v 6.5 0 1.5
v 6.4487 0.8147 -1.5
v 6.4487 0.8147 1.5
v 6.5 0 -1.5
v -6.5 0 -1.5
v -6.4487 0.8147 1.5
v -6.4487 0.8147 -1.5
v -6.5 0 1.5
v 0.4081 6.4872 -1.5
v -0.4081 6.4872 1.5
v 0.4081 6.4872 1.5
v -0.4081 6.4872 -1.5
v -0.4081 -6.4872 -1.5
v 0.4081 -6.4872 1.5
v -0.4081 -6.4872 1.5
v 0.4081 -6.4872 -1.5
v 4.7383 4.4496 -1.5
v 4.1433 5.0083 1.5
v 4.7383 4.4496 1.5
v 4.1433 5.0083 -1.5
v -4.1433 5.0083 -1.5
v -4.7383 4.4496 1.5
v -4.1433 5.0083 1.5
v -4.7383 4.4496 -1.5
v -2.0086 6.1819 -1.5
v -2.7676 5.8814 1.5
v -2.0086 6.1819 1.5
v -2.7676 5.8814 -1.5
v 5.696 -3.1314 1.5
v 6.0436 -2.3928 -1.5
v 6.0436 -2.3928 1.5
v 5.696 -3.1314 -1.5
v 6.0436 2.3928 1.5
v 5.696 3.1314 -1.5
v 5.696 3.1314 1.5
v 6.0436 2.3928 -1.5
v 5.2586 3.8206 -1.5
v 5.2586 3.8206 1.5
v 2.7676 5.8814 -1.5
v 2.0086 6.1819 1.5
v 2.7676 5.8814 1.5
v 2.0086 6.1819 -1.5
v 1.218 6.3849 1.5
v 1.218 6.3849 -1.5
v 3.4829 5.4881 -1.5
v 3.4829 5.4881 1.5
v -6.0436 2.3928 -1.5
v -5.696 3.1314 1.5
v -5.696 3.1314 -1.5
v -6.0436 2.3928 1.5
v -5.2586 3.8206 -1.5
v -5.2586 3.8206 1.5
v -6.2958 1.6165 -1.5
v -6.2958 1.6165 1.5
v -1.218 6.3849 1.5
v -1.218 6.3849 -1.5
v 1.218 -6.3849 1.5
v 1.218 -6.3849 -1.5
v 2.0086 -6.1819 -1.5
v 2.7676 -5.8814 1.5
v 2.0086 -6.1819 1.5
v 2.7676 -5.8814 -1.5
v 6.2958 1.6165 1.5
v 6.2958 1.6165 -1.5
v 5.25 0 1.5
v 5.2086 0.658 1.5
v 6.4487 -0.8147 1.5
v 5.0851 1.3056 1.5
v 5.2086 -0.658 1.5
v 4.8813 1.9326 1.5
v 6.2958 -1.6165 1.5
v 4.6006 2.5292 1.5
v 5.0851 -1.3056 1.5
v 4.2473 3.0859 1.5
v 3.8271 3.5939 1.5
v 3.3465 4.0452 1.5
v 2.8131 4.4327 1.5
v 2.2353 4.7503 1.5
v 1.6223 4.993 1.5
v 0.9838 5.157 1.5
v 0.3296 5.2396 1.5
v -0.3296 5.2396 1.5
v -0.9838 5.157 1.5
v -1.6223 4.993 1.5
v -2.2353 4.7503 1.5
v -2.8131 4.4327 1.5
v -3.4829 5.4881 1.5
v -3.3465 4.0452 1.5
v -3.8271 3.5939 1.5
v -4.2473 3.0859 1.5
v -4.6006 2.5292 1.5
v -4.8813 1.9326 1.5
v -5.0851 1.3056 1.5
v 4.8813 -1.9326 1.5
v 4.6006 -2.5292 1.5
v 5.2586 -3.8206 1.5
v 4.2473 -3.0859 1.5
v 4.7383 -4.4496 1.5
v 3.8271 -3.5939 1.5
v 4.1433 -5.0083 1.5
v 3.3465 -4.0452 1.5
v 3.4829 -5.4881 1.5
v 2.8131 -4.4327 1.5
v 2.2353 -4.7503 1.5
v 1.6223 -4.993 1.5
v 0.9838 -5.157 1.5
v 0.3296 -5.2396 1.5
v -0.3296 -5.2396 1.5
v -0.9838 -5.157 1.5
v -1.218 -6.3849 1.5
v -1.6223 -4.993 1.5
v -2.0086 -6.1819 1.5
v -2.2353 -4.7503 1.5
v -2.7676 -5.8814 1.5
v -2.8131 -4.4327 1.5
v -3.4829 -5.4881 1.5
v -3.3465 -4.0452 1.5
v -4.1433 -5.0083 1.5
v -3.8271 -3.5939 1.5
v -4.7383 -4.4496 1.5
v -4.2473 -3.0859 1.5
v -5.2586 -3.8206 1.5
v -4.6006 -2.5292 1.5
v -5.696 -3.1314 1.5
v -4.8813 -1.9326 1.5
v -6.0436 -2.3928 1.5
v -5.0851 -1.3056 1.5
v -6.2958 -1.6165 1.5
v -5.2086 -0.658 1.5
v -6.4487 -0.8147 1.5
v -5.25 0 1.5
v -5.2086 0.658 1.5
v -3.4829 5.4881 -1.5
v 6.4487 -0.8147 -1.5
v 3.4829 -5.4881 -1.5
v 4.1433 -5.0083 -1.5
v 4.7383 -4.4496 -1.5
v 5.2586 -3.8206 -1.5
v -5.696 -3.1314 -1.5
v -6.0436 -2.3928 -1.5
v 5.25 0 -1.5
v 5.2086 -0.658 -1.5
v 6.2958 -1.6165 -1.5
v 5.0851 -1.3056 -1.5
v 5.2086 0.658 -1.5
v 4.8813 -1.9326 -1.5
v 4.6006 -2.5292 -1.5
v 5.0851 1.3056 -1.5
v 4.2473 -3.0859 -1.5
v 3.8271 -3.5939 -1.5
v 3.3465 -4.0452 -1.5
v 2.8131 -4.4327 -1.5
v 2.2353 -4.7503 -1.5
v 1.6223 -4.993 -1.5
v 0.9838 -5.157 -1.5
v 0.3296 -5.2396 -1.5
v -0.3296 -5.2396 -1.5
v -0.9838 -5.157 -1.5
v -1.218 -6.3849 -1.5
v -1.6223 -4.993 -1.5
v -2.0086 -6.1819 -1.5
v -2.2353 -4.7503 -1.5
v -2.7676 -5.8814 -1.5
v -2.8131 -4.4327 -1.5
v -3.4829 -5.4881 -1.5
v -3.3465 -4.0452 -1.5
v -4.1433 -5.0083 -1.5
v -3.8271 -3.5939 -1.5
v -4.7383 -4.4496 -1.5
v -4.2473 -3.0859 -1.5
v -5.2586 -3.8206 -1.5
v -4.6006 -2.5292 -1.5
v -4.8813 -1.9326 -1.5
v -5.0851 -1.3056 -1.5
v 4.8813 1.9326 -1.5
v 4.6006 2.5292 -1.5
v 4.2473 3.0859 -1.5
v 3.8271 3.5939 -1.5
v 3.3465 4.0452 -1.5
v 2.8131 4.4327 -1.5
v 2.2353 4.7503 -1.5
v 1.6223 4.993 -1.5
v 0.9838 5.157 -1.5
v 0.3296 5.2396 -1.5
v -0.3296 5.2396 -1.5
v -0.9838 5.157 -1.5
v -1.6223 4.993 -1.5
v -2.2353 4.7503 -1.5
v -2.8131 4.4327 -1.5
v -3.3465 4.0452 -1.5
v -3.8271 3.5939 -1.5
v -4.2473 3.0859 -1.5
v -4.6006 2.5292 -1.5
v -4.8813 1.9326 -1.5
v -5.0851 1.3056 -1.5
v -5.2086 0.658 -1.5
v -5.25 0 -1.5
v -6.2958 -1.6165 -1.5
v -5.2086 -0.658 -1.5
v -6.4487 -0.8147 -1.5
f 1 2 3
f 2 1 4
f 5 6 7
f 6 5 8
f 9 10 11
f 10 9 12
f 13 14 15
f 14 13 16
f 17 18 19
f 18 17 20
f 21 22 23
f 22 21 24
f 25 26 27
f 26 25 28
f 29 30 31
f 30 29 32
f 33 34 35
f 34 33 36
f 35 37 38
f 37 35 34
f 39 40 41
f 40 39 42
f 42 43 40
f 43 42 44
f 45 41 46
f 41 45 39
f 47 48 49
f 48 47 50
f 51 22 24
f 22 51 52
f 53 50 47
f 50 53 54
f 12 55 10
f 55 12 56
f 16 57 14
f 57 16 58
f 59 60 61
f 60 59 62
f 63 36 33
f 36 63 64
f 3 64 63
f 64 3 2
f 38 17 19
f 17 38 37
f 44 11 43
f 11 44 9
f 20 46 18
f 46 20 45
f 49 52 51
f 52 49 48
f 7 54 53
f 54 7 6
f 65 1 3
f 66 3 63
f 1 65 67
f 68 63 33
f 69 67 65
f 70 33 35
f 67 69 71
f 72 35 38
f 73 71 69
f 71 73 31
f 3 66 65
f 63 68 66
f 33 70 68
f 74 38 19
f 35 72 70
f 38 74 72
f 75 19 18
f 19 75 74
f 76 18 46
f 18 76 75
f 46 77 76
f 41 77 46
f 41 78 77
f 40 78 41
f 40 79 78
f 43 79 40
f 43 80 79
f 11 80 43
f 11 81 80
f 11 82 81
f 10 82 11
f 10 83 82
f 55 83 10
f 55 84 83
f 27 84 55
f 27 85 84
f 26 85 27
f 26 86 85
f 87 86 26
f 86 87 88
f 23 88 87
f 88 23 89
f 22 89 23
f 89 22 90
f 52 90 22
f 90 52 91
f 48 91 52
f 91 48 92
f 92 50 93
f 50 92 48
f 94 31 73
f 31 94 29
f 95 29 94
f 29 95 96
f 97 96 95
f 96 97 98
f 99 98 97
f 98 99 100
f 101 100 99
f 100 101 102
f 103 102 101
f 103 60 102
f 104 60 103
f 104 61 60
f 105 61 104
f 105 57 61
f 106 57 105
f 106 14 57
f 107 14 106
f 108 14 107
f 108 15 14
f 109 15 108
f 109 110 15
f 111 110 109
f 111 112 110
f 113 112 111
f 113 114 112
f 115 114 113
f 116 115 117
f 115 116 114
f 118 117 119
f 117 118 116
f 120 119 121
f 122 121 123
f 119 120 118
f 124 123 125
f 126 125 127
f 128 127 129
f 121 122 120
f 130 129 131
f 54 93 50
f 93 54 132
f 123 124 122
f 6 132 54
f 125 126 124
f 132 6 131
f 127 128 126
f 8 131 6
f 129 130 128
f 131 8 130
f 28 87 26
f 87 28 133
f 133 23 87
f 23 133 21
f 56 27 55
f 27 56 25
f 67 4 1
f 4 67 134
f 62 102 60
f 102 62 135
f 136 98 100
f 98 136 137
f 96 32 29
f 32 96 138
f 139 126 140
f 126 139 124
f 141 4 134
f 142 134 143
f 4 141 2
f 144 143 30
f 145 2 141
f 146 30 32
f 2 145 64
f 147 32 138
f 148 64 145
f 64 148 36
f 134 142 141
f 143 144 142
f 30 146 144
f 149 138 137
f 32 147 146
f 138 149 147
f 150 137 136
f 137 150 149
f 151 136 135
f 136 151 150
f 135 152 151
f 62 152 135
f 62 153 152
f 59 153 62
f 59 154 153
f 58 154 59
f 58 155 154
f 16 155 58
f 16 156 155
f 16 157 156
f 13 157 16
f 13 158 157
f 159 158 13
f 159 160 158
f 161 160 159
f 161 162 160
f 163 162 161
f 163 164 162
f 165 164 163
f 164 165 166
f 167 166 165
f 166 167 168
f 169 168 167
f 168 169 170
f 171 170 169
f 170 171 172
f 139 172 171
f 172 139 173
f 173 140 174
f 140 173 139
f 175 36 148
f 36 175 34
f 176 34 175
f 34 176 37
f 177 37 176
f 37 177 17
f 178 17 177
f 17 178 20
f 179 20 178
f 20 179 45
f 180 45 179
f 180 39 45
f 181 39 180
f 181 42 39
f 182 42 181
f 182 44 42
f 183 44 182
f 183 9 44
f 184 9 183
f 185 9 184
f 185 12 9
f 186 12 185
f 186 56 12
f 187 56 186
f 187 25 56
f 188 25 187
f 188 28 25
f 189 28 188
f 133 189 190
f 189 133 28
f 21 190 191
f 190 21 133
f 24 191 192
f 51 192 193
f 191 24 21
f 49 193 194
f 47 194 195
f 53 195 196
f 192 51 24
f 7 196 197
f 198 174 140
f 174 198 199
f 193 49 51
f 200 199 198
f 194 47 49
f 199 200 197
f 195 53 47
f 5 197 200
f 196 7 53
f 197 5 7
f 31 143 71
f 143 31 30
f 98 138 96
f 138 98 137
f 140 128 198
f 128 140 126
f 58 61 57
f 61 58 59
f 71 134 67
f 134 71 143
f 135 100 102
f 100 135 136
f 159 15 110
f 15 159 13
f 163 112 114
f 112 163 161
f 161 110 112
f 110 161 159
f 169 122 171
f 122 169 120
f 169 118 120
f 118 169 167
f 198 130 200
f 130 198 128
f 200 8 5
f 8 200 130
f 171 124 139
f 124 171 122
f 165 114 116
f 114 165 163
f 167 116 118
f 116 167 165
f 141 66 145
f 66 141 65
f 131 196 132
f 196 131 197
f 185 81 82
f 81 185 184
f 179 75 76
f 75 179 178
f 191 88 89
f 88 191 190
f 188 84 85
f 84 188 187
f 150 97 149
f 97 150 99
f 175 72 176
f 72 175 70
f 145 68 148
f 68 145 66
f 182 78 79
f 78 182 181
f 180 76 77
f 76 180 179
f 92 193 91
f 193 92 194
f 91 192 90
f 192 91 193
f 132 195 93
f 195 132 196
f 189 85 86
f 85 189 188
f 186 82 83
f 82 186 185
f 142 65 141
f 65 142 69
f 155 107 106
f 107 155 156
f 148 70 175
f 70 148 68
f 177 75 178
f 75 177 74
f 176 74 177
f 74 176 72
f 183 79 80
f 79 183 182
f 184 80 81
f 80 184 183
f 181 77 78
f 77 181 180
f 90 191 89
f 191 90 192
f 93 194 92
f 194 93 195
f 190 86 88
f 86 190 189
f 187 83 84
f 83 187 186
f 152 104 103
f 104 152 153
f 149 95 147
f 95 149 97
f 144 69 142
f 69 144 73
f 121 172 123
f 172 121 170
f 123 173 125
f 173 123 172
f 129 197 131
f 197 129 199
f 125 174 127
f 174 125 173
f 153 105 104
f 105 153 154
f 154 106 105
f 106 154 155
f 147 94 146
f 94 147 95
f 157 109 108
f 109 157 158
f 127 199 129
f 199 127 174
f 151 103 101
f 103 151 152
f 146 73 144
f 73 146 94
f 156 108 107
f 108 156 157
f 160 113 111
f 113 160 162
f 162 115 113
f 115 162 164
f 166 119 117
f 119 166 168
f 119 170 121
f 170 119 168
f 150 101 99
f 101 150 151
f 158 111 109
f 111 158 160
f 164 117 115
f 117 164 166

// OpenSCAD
$fn = 50;


difference() {
	union() {
		translate(v = [0, 0, -1.5000000000]) {
			cylinder(h = 3, r = 6.5000000000);
		}
	}
	union() {
		translate(v = [0, 0, -100.0000000000]) {
			cylinder(h = 200, r = 5.2500000000);
		}
	}
}
